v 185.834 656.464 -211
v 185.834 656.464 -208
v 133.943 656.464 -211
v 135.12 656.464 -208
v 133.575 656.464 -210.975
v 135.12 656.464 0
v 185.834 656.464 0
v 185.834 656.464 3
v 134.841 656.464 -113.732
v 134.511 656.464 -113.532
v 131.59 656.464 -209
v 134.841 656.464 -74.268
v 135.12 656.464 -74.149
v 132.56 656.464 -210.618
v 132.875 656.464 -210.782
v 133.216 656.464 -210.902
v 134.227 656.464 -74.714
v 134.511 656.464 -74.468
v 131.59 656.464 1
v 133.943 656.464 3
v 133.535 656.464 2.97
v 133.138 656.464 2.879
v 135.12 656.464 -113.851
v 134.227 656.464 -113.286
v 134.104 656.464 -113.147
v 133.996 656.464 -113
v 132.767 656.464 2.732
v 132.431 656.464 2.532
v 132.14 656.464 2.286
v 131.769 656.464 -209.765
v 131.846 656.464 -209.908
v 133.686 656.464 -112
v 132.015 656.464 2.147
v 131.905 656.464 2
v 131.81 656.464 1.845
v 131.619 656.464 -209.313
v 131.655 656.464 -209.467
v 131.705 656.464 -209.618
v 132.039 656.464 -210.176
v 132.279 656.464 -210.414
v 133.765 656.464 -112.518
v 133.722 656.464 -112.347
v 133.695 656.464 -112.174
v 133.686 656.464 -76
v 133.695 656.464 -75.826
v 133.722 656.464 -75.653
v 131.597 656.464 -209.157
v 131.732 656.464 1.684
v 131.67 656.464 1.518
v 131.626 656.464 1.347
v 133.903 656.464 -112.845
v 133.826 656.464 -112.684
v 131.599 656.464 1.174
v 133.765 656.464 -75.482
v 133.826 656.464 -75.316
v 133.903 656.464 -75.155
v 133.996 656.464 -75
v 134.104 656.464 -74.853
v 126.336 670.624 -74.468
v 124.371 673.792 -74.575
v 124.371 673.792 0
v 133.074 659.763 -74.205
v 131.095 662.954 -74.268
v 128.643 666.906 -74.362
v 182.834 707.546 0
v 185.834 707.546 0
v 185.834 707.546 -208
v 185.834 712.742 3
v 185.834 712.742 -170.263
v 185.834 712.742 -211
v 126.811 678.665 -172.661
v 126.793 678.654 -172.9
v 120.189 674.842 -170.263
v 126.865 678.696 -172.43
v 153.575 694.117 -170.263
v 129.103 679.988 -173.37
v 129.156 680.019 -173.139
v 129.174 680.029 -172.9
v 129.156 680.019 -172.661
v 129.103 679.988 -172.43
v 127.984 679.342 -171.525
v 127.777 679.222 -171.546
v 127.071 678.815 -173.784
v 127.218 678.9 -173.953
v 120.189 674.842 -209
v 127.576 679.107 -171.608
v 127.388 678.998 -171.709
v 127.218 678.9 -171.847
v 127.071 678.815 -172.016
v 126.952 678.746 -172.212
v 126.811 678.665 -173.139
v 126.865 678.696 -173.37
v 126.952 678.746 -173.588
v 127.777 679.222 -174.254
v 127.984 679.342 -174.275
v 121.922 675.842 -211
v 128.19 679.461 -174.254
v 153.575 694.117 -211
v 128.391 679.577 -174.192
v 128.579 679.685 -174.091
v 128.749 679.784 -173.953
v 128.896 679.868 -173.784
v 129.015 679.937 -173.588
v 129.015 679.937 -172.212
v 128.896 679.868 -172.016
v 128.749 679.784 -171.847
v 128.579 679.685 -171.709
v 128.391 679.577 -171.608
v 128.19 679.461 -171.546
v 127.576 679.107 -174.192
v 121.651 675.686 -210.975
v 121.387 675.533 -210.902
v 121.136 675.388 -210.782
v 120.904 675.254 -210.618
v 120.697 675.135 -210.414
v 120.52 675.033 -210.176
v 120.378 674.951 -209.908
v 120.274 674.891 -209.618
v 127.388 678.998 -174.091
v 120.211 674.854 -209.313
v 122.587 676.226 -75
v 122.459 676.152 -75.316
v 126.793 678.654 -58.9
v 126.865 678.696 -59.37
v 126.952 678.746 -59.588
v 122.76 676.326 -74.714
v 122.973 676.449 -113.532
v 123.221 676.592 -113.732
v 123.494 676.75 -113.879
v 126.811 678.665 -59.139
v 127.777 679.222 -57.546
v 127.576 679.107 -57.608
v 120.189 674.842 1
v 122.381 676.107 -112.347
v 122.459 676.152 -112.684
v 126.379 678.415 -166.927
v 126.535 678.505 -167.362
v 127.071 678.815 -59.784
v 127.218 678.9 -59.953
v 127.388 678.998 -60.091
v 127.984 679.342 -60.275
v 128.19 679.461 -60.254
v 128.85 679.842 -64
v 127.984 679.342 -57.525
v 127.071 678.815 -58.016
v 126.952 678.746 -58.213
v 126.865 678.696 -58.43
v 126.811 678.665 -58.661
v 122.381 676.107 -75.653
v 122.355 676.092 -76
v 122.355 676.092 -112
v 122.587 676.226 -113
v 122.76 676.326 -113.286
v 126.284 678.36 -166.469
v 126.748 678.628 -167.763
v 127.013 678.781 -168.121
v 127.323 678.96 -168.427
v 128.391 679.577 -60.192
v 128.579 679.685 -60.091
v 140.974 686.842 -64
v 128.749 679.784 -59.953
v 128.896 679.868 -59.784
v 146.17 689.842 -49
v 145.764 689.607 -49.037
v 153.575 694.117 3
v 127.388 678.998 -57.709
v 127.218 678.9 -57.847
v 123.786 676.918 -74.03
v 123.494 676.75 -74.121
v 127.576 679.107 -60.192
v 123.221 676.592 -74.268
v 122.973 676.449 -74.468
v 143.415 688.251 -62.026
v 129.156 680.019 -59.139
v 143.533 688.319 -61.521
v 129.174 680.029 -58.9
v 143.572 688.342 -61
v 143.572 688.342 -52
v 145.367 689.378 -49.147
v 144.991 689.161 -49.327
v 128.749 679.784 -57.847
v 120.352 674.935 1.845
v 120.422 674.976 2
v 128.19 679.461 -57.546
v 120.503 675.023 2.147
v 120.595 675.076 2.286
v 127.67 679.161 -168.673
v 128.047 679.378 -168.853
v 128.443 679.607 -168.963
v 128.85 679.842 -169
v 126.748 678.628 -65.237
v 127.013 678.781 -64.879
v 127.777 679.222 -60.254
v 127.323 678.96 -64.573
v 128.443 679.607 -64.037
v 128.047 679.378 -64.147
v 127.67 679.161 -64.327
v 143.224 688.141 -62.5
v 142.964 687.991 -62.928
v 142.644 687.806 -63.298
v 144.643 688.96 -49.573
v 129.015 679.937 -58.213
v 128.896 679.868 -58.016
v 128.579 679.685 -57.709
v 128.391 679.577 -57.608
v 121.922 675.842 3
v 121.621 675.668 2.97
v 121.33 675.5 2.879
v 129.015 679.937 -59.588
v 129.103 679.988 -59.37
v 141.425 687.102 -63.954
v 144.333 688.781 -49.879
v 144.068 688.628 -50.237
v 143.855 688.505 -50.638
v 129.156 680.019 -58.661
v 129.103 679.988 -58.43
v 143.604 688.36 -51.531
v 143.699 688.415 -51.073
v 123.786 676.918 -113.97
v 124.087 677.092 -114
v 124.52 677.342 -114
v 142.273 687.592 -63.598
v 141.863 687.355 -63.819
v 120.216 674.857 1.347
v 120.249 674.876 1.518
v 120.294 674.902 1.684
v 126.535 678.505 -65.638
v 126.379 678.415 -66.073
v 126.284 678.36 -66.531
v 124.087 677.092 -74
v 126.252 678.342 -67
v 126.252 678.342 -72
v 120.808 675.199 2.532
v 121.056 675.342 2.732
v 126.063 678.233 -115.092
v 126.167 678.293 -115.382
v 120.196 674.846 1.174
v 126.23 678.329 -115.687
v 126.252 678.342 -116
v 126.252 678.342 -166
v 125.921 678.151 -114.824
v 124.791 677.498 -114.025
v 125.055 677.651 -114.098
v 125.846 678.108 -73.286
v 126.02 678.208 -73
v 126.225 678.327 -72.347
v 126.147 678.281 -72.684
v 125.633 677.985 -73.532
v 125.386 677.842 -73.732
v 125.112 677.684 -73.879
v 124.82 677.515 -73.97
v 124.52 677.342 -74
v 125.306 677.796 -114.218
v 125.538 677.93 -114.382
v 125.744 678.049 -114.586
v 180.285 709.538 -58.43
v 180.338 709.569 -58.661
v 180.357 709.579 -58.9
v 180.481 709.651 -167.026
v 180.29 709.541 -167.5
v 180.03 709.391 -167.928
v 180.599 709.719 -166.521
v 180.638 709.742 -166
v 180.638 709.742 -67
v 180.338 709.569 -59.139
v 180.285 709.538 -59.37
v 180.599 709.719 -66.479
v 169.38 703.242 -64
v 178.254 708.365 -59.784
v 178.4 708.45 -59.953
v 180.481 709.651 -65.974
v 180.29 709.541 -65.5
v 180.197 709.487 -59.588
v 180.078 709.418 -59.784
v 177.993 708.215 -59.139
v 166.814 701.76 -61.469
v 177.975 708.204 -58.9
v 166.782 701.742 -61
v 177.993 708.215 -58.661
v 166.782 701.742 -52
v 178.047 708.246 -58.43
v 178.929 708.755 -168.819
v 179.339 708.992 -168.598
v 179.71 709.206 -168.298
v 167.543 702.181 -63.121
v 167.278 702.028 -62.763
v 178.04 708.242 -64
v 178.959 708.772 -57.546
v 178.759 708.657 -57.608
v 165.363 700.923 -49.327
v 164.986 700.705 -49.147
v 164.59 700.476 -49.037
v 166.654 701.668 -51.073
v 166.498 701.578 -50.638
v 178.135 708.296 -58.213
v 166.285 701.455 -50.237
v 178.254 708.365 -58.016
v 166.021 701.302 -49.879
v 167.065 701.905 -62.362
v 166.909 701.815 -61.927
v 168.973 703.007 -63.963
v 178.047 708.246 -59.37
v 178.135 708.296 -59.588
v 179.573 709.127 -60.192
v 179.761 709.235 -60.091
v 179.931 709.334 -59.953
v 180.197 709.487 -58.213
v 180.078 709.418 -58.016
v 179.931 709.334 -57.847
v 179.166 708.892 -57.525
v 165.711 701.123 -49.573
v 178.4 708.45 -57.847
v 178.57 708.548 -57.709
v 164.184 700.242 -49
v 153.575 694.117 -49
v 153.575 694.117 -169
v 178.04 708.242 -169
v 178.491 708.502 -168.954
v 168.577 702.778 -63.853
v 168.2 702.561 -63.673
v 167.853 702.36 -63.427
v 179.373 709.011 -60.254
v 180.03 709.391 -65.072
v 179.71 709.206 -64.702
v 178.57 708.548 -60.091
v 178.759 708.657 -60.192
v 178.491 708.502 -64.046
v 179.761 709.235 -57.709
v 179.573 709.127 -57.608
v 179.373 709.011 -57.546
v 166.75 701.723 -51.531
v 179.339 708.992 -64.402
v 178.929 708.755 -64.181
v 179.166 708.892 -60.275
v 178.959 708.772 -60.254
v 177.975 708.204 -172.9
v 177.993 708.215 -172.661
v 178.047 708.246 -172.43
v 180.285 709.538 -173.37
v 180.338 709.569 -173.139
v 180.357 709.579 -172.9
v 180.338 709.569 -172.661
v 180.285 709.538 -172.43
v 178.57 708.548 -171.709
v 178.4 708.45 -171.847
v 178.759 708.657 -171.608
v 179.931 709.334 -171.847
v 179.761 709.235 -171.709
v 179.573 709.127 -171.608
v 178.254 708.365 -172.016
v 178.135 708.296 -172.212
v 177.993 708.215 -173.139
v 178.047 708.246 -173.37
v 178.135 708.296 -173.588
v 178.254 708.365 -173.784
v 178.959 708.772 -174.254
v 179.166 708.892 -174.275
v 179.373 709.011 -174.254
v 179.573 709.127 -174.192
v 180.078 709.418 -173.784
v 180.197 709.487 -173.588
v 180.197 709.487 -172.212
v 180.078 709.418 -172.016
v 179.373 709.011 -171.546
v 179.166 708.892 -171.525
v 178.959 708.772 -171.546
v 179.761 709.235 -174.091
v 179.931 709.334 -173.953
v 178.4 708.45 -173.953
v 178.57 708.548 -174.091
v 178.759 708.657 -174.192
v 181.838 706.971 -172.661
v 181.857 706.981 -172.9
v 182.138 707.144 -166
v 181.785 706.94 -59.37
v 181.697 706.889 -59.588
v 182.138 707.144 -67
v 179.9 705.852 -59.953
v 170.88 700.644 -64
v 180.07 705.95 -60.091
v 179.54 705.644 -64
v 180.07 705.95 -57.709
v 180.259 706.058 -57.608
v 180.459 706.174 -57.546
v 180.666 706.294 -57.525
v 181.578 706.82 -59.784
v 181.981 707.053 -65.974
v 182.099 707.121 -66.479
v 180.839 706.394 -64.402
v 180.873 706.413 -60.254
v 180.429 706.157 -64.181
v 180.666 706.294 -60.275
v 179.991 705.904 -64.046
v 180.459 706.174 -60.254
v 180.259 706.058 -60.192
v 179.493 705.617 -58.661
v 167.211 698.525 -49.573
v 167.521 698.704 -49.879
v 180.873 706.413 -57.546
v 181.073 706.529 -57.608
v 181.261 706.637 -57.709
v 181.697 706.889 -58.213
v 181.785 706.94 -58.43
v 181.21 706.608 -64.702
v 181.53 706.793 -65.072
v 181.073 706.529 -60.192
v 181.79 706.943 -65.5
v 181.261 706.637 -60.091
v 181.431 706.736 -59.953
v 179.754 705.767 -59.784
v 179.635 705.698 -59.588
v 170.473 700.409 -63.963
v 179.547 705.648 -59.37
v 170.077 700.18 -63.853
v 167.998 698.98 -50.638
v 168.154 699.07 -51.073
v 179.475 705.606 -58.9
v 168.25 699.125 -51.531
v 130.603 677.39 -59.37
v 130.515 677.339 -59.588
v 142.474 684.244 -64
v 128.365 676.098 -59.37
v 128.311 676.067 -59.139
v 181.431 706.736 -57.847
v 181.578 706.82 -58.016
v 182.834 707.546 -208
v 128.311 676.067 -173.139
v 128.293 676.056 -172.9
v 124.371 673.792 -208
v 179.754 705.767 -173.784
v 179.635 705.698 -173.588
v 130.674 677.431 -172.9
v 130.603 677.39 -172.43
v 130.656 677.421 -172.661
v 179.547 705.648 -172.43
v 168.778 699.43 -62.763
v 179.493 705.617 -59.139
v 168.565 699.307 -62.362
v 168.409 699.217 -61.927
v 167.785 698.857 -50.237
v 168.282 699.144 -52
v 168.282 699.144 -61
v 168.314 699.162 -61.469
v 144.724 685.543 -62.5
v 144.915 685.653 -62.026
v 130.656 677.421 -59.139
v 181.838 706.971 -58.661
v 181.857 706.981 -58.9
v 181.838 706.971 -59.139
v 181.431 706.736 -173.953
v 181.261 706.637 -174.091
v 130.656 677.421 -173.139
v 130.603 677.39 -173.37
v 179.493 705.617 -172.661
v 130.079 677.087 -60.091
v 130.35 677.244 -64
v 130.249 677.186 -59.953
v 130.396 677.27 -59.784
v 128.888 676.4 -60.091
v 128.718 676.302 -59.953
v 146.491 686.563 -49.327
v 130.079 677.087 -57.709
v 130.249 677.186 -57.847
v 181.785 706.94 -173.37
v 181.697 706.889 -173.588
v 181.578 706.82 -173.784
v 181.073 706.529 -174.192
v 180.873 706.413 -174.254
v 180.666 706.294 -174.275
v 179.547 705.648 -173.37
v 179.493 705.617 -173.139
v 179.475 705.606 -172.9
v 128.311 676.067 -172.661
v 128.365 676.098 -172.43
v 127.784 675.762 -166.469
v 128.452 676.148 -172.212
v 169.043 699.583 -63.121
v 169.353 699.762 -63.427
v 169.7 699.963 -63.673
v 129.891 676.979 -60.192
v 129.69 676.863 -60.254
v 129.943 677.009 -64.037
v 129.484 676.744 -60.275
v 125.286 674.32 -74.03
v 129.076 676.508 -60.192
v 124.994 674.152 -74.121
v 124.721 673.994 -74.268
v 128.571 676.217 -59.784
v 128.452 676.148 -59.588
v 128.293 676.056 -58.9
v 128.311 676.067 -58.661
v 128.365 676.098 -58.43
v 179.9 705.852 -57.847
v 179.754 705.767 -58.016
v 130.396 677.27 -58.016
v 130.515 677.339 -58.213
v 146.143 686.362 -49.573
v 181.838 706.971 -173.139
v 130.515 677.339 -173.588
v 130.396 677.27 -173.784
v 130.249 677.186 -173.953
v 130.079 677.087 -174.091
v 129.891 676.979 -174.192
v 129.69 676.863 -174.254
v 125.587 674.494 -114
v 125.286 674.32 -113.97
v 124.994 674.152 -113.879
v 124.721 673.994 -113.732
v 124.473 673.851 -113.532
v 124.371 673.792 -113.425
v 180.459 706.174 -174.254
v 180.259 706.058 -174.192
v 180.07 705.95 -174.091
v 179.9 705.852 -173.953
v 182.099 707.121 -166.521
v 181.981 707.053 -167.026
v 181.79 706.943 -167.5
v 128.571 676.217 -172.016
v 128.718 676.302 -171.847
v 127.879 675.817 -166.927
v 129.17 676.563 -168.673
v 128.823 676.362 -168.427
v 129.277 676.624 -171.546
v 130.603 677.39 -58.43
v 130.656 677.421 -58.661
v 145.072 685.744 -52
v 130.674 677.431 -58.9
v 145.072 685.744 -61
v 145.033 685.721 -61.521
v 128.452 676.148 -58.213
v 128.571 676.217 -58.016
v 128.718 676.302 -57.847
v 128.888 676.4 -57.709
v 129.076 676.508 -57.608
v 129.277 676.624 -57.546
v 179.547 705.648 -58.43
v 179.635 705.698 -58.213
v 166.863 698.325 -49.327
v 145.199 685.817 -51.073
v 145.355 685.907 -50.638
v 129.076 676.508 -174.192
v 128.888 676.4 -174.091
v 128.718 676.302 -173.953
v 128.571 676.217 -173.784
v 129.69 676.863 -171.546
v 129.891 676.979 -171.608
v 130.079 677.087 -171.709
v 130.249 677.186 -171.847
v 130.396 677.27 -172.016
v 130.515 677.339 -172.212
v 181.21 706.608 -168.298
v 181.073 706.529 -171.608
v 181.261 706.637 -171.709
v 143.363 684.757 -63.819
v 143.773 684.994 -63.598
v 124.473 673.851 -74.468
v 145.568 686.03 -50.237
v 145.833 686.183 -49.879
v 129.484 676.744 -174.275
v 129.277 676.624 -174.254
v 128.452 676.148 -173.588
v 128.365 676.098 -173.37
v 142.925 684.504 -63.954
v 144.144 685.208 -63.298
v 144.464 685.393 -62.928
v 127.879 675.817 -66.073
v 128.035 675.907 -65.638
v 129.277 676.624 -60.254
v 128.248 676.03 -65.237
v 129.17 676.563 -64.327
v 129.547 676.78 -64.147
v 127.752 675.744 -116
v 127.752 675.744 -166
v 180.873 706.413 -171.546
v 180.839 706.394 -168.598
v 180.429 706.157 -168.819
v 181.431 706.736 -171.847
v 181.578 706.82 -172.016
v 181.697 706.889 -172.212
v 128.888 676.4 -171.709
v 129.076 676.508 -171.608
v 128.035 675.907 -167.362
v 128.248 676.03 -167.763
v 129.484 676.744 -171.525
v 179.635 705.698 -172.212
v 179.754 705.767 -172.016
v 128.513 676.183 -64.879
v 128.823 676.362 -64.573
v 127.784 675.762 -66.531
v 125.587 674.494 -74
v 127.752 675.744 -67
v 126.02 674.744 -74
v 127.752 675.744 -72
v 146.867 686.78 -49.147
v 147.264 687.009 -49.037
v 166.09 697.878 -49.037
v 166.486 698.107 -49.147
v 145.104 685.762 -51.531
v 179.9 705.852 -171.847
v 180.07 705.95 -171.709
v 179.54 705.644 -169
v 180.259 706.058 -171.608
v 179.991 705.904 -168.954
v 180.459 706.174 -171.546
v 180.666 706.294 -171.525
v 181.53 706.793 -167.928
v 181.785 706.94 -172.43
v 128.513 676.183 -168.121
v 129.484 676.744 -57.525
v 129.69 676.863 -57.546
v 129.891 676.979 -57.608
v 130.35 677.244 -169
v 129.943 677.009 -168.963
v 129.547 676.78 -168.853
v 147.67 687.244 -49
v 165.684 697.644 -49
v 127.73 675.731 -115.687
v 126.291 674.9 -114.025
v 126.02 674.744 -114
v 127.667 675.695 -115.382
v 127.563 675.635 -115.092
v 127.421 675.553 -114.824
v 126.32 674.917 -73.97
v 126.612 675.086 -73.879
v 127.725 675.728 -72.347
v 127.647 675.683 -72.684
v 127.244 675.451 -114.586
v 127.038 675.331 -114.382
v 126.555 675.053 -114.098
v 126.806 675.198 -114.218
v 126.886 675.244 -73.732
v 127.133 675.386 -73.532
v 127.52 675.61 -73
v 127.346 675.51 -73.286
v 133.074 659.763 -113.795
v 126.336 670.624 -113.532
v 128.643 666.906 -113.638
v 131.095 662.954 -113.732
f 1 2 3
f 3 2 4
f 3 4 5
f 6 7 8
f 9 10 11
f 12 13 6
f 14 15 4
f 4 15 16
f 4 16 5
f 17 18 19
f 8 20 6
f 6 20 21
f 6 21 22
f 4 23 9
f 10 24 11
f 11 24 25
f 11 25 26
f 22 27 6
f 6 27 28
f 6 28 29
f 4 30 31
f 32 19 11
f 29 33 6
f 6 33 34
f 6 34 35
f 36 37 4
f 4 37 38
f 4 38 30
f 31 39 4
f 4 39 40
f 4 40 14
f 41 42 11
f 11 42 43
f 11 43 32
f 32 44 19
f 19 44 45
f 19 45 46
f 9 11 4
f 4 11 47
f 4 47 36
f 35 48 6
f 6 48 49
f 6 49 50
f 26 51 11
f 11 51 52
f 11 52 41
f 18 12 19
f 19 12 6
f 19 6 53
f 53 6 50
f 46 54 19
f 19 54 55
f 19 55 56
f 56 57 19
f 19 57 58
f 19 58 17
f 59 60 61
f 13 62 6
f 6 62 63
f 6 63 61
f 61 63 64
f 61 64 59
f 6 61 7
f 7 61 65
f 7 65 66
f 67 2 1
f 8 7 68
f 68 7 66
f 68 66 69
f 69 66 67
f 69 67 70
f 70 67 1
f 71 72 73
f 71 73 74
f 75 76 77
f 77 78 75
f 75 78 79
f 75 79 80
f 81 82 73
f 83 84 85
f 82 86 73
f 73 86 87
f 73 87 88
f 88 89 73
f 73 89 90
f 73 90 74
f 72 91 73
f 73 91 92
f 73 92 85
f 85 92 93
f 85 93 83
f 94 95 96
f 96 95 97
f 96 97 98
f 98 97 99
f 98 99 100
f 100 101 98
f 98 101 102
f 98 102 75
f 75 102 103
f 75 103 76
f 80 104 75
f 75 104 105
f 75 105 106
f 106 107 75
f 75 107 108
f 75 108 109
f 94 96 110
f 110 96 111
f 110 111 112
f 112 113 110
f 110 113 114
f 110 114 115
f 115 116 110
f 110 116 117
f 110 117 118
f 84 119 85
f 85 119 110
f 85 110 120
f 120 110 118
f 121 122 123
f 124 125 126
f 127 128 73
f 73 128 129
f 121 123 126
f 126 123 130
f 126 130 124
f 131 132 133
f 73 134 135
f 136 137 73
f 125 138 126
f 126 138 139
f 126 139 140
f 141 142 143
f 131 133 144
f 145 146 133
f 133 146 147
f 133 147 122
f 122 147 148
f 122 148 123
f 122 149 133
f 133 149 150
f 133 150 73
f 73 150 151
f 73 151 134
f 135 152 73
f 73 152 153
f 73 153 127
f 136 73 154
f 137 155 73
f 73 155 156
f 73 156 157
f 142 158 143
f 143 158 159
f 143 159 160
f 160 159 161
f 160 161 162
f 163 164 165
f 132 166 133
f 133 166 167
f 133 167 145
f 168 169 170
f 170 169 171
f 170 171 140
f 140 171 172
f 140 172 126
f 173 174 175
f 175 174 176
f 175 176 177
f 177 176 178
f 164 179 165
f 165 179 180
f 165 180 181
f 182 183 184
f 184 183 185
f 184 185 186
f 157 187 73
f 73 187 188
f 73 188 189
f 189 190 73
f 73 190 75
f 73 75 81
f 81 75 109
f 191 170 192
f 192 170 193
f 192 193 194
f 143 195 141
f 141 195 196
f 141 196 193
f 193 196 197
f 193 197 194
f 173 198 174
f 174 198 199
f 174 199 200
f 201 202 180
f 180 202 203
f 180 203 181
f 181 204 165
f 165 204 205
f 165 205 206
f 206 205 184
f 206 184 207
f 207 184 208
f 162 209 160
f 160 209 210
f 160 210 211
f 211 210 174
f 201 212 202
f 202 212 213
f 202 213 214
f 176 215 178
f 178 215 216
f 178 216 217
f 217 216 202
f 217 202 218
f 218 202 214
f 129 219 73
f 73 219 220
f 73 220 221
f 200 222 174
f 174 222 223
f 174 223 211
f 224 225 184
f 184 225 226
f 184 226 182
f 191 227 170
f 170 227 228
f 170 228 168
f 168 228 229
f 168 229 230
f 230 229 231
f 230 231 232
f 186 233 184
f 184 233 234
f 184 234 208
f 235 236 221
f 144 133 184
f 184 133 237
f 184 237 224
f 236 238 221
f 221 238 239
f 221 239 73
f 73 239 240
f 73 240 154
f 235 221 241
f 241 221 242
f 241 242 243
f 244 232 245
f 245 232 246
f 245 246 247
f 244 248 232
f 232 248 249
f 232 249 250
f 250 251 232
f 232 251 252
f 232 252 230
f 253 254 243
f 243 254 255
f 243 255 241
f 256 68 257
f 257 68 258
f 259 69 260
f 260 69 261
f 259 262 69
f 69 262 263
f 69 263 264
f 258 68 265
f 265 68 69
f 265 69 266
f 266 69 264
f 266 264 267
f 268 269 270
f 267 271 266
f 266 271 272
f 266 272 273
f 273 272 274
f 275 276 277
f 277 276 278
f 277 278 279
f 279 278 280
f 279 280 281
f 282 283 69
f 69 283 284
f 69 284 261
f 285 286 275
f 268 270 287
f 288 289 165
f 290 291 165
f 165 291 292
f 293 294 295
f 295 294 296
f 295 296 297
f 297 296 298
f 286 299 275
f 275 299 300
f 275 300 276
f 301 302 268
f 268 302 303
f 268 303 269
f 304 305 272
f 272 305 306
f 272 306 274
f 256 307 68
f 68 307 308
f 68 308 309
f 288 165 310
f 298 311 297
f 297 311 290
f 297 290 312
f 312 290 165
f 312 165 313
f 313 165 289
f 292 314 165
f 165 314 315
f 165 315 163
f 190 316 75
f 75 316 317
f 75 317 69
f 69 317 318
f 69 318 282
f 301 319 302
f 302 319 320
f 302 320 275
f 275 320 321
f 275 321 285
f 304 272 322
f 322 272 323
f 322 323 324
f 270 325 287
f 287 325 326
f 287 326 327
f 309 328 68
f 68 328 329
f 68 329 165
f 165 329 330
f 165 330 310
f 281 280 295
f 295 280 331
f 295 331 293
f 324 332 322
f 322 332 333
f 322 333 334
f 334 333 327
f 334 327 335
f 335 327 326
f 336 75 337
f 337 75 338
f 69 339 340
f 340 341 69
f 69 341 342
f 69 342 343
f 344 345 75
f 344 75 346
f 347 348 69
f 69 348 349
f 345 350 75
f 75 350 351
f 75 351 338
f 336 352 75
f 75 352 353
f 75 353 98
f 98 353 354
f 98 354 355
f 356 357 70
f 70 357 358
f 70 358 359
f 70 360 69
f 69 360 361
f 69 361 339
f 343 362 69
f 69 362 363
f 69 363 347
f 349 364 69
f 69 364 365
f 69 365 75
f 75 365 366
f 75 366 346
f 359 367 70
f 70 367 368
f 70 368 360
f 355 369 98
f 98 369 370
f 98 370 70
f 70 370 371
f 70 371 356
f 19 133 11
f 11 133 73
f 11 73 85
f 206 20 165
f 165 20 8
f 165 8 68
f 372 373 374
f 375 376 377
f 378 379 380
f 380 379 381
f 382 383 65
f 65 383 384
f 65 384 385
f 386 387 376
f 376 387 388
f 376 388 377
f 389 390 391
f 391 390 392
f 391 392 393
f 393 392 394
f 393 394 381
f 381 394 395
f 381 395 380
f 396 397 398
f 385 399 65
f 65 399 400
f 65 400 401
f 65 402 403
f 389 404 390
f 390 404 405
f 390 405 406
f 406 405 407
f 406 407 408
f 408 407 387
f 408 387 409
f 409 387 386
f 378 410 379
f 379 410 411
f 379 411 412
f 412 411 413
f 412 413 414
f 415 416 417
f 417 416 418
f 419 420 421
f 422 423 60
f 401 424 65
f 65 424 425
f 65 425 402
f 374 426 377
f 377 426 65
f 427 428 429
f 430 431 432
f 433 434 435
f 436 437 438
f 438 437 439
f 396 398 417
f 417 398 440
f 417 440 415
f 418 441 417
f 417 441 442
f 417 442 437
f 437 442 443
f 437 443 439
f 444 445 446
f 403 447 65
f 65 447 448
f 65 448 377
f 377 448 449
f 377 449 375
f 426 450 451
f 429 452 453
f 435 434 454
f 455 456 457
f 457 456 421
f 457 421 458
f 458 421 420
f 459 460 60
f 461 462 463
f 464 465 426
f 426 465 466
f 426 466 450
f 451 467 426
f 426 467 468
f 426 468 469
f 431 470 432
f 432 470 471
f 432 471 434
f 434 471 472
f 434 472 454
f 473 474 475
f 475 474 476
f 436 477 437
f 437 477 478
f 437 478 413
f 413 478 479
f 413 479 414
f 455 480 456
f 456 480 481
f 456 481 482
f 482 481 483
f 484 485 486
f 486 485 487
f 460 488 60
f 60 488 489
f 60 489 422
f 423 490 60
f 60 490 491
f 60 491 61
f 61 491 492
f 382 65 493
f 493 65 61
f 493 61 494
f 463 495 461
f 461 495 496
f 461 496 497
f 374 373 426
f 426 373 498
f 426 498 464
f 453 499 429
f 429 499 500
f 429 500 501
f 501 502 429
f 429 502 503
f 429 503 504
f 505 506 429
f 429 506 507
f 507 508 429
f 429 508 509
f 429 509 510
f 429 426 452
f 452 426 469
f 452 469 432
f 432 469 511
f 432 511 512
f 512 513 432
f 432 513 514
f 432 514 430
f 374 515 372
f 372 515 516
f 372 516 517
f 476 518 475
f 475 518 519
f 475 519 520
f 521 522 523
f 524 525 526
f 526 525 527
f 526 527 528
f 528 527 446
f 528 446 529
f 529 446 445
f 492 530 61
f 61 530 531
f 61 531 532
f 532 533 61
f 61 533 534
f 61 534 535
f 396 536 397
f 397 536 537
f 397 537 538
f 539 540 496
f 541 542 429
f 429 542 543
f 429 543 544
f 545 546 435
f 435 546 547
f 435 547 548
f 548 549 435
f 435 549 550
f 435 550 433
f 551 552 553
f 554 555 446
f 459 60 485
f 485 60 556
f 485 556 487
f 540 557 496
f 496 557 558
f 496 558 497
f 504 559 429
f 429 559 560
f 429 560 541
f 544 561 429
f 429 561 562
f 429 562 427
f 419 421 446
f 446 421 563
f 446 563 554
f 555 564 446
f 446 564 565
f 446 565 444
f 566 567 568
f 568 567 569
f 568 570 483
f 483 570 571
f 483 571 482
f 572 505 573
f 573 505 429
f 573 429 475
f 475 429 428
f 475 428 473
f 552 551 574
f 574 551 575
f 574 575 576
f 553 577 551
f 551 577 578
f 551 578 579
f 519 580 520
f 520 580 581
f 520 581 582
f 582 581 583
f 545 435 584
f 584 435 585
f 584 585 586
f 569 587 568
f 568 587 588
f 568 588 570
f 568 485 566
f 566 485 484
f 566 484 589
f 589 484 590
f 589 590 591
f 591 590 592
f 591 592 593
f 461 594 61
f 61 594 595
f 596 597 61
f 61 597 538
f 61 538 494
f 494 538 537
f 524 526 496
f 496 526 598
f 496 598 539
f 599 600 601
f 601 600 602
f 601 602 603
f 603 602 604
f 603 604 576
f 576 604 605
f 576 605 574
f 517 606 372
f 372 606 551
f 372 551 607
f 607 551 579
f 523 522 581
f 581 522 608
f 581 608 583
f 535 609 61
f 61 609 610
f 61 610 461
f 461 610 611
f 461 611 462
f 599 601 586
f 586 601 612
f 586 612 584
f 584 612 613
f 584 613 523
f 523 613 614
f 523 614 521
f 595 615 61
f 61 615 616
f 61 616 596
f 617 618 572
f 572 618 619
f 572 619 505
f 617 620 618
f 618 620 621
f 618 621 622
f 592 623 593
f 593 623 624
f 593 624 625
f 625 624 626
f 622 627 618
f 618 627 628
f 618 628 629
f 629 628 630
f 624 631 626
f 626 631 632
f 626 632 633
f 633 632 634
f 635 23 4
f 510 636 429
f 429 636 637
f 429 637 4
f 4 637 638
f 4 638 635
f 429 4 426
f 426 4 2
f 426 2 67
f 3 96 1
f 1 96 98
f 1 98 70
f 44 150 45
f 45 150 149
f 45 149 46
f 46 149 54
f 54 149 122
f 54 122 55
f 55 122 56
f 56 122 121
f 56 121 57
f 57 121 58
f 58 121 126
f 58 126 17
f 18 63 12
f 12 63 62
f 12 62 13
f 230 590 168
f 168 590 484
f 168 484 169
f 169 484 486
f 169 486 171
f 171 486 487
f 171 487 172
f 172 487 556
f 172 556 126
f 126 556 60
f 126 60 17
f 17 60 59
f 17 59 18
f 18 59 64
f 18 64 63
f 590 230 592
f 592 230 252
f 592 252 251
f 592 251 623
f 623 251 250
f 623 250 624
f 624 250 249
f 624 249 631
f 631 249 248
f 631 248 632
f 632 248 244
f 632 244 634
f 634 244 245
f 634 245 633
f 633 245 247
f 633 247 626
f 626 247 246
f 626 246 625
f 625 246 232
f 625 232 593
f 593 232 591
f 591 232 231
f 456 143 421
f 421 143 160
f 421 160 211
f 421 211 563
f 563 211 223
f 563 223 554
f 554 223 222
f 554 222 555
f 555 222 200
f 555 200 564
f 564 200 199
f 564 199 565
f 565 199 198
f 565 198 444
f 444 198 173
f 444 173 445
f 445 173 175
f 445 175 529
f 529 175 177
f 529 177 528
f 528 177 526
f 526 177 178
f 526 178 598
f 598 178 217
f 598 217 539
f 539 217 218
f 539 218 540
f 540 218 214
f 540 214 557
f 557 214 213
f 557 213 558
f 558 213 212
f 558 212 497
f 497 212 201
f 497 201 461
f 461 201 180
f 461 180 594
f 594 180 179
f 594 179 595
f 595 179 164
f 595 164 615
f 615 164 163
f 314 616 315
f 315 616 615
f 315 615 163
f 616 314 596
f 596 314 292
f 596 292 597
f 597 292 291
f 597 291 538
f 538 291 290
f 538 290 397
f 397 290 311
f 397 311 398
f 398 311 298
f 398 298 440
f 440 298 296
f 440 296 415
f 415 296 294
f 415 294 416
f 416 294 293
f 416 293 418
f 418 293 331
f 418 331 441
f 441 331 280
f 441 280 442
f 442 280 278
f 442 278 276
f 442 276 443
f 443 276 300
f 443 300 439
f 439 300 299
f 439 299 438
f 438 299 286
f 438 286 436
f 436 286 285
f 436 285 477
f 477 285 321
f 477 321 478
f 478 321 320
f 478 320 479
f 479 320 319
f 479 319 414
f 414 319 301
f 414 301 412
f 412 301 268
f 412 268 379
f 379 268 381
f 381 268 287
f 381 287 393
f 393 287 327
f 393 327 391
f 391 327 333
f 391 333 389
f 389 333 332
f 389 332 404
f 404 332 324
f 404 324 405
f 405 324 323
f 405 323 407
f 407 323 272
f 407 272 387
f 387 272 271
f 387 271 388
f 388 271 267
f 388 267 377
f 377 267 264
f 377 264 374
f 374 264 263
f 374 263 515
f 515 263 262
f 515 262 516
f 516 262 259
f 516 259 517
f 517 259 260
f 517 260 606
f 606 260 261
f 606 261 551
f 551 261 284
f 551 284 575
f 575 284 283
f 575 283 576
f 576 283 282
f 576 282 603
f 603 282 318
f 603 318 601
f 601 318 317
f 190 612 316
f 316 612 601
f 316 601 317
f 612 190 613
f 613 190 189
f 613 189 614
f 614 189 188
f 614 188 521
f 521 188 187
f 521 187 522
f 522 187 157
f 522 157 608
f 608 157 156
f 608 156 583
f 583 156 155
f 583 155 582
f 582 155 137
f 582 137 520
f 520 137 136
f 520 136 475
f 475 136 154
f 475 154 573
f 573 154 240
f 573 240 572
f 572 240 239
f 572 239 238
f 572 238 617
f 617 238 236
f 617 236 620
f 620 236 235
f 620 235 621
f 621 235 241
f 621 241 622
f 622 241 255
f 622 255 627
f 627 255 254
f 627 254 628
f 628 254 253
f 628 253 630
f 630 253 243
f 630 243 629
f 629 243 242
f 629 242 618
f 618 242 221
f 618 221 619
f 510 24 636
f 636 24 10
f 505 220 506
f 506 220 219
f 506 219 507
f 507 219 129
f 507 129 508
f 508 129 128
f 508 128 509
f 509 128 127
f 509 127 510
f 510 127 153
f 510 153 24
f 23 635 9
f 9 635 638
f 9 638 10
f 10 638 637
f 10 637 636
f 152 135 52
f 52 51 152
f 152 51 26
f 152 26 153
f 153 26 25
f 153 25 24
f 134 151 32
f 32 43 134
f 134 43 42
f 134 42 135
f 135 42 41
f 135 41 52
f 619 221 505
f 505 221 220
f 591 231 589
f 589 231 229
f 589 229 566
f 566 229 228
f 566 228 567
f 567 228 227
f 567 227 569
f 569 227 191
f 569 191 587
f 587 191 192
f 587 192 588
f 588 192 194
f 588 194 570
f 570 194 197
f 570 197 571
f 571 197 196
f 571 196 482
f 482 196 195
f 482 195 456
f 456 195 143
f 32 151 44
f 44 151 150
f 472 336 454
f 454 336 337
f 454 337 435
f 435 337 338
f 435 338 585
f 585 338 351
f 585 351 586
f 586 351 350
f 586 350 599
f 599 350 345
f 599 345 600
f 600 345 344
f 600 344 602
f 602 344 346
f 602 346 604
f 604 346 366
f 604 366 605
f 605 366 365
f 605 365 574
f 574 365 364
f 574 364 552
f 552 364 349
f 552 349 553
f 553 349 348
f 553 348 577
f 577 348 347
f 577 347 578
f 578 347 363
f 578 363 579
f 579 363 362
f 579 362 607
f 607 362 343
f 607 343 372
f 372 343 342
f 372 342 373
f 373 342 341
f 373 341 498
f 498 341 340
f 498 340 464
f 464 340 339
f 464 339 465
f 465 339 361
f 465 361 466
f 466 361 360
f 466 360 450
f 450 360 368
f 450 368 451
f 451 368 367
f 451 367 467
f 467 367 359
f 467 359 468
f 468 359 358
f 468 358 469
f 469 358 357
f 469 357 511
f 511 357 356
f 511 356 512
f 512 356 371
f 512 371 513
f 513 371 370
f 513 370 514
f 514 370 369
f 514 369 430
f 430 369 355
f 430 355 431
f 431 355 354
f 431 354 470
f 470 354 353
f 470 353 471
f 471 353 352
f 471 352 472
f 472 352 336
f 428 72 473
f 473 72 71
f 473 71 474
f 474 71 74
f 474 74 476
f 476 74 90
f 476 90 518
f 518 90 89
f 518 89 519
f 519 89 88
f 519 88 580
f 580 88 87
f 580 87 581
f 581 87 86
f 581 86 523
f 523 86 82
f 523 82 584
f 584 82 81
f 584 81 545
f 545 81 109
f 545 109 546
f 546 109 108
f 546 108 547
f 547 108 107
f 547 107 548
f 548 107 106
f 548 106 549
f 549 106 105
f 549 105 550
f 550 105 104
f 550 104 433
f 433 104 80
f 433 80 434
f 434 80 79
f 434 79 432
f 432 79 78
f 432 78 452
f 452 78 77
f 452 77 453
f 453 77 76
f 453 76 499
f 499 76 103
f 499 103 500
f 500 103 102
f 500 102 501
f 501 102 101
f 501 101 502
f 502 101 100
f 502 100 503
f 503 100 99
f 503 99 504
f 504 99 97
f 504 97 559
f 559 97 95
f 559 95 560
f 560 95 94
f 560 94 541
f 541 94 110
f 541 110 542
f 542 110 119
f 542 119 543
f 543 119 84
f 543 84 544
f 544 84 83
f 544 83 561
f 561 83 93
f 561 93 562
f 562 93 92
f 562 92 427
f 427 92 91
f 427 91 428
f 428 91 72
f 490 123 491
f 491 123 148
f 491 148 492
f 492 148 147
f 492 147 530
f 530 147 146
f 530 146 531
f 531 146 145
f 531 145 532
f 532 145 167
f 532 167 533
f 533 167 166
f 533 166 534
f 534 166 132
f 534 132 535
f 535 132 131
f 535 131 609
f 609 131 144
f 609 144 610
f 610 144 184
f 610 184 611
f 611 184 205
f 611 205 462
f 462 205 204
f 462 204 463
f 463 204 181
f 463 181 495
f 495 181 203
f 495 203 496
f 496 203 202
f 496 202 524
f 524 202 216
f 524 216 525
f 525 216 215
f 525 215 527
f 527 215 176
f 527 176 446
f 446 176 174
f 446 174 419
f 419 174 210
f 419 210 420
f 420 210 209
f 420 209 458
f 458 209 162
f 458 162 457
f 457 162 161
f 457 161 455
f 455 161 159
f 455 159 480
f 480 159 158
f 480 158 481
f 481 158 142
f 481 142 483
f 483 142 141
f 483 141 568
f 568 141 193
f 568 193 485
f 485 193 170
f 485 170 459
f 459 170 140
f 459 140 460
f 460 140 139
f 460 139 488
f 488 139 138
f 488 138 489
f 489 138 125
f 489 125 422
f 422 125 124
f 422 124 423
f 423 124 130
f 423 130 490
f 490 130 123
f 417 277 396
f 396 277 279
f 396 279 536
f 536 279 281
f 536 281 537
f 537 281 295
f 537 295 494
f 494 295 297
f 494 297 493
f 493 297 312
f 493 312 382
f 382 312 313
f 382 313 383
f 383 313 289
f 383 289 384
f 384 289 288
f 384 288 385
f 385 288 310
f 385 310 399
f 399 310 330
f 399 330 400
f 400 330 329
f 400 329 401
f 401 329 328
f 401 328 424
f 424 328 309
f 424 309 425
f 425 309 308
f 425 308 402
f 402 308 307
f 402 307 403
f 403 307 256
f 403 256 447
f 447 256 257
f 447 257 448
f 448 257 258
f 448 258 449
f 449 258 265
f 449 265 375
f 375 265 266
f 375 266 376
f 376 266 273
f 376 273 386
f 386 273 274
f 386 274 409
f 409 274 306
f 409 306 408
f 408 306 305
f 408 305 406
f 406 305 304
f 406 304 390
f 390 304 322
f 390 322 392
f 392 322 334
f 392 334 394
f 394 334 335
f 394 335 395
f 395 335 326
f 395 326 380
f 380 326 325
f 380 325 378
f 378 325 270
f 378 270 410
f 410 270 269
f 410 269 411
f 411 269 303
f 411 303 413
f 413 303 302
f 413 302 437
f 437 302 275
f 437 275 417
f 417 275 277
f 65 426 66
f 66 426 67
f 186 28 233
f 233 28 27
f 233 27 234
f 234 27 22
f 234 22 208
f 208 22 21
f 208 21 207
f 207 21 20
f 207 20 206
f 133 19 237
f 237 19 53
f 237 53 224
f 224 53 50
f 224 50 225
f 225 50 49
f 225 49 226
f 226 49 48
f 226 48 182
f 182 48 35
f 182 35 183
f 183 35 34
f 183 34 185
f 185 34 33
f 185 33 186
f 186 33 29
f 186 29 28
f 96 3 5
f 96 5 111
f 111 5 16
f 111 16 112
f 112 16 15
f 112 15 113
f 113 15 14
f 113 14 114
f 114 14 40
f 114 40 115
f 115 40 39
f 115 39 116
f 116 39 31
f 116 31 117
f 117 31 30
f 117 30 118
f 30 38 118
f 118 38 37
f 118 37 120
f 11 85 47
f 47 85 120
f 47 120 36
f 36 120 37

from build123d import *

# Parameters (mm, degrees)
BOSS_EXTRUDE1_DEPTH = 3
BOSS_EXTRUDE2_DEPTH = 208
BOSS_EXTRUDE4_DEPTH = 3
SKETCH3_R           = 1.375
PIHOLE_DEPTH        = 33.822362803
PIHOLE_DEPTH_BACK   = 49.737803669
CUT_EXTRUDE7_START  = -3
SKETCH11_W          = 3
SKETCH11_H          = 51.081415713
CUT_EXTRUDE7_DEPTH  = 208
FILLET1_R           = 2


with BuildPart() as part:
    # Sketch1 → Boss-Extrude1 (new body)
    with BuildSketch(Plane.XY):
        Polygon((131.589833852, 656.464158154), (185.834178461, 656.464158154), (185.834178461, 712.741726289), (120.189452854, 674.841726289), align=None)
    extrude(amount=BOSS_EXTRUDE1_DEPTH)

    # Sketch2 → Boss-Extrude2 (add)
    with BuildSketch(Plane.XY):
        Polygon((185.834178461, 712.741726289), (120.189452854, 674.841726289), (131.589833852, 656.464158154), (135.120190771, 656.464158154), (124.371071621, 673.791883395), (182.834178461, 707.545573867), (182.834178461, 656.464158154), (185.834178461, 656.464158154), align=None)
    extrude(amount=-BOSS_EXTRUDE2_DEPTH)

    # Sketch10 → Boss-Extrude4 (add)
    with BuildSketch(Plane(origin=(0, 0, -208), x_dir=(-1, 0, 0), z_dir=(0, 0, -1))):
        Polygon((-185.834178461, 712.741726289), (-120.189452854, 674.841726289), (-131.589833852, 656.464158154), (-185.834178461, 656.464158154), align=None)
    extrude(amount=BOSS_EXTRUDE4_DEPTH)

    # Sketch3 → PiHole (cut, two sides)
    with BuildSketch(Plane(origin=(-262.167676037, 454.087734998, 0), x_dir=(0.866025404, 0.5, 0), z_dir=(-0.5, 0.866025404, 0))) as pihole_sk:
        with Locations((450.507982584, 172.9)):
            Circle(SKETCH3_R)
        with Locations((509.607982584, 172.9)):
            Circle(SKETCH3_R)
        with Locations((509.607982584, 58.9)):
            Circle(SKETCH3_R)
        with Locations((450.507982584, 58.9)):
            Circle(SKETCH3_R)
        with BuildLine():
            Line((451.507982584, 169), (508.307982584, 169))
            ThreePointArc((508.307982584, 169), (510.429302927, 168.121320344), (511.307982584, 166))
            Line((511.307982584, 166), (511.307982584, 67))
            ThreePointArc((511.307982584, 67), (510.429302927, 64.878679656), (508.307982584, 64))
            Line((508.307982584, 64), (498.307982584, 64))
            ThreePointArc((498.307982584, 64), (496.18666224, 63.121320344), (495.307982584, 61))
            Line((495.307982584, 61), (495.307982584, 52))
            ThreePointArc((495.307982584, 52), (494.429302927, 49.878679656), (492.307982584, 49))
            Line((492.307982584, 49), (471.507982584, 49))
            ThreePointArc((471.507982584, 49), (469.38666224, 49.878679656), (468.507982584, 52))
            Line((468.507982584, 52), (468.507982584, 61))
            ThreePointArc((468.507982584, 61), (467.629302927, 63.121320344), (465.507982584, 64))
            Line((465.507982584, 64), (451.507982584, 64))
            ThreePointArc((451.507982584, 64), (449.38666224, 64.878679656), (448.507982584, 67))
            Line((448.507982584, 67), (448.507982584, 72))
            ThreePointArc((448.507982584, 72), (447.922196146, 73.414213562), (446.507982584, 74))
            Line((446.507982584, 74), (446.007982584, 74))
            ThreePointArc((446.007982584, 74), (444.593769021, 74.585786438), (444.007982584, 76))
            Line((444.007982584, 76), (444.007982584, 112))
            ThreePointArc((444.007982584, 112), (444.593769021, 113.414213562), (446.007982584, 114))
            Line((446.007982584, 114), (446.507982584, 114))
            ThreePointArc((446.507982584, 114), (447.922196146, 114.585786438), (448.507982584, 116))
            Line((448.507982584, 116), (448.507982584, 166))
            ThreePointArc((448.507982584, 166), (449.38666224, 168.121320344), (451.507982584, 169))
        make_face()
    extrude(amount=PIHOLE_DEPTH, mode=Mode.SUBTRACT)
    extrude(pihole_sk.sketch, amount=-PIHOLE_DEPTH_BACK, mode=Mode.SUBTRACT)

    # Sketch11 → Cut-Extrude7 (cut)
    with BuildSketch(Plane.XY.offset(3).offset(CUT_EXTRUDE7_START)):
        with Locations((184.334178461, 682.004866011)):
            Rectangle(SKETCH11_W, SKETCH11_H)
    extrude(amount=-CUT_EXTRUDE7_DEPTH, mode=Mode.SUBTRACT)

    # Fillet1
    fillet1_edges = [part.edges().sort_by_distance(p)[0] for p in [
        (125.889643353, 665.652942222, 3),
        (125.889643353, 665.652942222, -211),
    ]]
    fillet(fillet1_edges, radius=FILLET1_R)


solid = part.part
